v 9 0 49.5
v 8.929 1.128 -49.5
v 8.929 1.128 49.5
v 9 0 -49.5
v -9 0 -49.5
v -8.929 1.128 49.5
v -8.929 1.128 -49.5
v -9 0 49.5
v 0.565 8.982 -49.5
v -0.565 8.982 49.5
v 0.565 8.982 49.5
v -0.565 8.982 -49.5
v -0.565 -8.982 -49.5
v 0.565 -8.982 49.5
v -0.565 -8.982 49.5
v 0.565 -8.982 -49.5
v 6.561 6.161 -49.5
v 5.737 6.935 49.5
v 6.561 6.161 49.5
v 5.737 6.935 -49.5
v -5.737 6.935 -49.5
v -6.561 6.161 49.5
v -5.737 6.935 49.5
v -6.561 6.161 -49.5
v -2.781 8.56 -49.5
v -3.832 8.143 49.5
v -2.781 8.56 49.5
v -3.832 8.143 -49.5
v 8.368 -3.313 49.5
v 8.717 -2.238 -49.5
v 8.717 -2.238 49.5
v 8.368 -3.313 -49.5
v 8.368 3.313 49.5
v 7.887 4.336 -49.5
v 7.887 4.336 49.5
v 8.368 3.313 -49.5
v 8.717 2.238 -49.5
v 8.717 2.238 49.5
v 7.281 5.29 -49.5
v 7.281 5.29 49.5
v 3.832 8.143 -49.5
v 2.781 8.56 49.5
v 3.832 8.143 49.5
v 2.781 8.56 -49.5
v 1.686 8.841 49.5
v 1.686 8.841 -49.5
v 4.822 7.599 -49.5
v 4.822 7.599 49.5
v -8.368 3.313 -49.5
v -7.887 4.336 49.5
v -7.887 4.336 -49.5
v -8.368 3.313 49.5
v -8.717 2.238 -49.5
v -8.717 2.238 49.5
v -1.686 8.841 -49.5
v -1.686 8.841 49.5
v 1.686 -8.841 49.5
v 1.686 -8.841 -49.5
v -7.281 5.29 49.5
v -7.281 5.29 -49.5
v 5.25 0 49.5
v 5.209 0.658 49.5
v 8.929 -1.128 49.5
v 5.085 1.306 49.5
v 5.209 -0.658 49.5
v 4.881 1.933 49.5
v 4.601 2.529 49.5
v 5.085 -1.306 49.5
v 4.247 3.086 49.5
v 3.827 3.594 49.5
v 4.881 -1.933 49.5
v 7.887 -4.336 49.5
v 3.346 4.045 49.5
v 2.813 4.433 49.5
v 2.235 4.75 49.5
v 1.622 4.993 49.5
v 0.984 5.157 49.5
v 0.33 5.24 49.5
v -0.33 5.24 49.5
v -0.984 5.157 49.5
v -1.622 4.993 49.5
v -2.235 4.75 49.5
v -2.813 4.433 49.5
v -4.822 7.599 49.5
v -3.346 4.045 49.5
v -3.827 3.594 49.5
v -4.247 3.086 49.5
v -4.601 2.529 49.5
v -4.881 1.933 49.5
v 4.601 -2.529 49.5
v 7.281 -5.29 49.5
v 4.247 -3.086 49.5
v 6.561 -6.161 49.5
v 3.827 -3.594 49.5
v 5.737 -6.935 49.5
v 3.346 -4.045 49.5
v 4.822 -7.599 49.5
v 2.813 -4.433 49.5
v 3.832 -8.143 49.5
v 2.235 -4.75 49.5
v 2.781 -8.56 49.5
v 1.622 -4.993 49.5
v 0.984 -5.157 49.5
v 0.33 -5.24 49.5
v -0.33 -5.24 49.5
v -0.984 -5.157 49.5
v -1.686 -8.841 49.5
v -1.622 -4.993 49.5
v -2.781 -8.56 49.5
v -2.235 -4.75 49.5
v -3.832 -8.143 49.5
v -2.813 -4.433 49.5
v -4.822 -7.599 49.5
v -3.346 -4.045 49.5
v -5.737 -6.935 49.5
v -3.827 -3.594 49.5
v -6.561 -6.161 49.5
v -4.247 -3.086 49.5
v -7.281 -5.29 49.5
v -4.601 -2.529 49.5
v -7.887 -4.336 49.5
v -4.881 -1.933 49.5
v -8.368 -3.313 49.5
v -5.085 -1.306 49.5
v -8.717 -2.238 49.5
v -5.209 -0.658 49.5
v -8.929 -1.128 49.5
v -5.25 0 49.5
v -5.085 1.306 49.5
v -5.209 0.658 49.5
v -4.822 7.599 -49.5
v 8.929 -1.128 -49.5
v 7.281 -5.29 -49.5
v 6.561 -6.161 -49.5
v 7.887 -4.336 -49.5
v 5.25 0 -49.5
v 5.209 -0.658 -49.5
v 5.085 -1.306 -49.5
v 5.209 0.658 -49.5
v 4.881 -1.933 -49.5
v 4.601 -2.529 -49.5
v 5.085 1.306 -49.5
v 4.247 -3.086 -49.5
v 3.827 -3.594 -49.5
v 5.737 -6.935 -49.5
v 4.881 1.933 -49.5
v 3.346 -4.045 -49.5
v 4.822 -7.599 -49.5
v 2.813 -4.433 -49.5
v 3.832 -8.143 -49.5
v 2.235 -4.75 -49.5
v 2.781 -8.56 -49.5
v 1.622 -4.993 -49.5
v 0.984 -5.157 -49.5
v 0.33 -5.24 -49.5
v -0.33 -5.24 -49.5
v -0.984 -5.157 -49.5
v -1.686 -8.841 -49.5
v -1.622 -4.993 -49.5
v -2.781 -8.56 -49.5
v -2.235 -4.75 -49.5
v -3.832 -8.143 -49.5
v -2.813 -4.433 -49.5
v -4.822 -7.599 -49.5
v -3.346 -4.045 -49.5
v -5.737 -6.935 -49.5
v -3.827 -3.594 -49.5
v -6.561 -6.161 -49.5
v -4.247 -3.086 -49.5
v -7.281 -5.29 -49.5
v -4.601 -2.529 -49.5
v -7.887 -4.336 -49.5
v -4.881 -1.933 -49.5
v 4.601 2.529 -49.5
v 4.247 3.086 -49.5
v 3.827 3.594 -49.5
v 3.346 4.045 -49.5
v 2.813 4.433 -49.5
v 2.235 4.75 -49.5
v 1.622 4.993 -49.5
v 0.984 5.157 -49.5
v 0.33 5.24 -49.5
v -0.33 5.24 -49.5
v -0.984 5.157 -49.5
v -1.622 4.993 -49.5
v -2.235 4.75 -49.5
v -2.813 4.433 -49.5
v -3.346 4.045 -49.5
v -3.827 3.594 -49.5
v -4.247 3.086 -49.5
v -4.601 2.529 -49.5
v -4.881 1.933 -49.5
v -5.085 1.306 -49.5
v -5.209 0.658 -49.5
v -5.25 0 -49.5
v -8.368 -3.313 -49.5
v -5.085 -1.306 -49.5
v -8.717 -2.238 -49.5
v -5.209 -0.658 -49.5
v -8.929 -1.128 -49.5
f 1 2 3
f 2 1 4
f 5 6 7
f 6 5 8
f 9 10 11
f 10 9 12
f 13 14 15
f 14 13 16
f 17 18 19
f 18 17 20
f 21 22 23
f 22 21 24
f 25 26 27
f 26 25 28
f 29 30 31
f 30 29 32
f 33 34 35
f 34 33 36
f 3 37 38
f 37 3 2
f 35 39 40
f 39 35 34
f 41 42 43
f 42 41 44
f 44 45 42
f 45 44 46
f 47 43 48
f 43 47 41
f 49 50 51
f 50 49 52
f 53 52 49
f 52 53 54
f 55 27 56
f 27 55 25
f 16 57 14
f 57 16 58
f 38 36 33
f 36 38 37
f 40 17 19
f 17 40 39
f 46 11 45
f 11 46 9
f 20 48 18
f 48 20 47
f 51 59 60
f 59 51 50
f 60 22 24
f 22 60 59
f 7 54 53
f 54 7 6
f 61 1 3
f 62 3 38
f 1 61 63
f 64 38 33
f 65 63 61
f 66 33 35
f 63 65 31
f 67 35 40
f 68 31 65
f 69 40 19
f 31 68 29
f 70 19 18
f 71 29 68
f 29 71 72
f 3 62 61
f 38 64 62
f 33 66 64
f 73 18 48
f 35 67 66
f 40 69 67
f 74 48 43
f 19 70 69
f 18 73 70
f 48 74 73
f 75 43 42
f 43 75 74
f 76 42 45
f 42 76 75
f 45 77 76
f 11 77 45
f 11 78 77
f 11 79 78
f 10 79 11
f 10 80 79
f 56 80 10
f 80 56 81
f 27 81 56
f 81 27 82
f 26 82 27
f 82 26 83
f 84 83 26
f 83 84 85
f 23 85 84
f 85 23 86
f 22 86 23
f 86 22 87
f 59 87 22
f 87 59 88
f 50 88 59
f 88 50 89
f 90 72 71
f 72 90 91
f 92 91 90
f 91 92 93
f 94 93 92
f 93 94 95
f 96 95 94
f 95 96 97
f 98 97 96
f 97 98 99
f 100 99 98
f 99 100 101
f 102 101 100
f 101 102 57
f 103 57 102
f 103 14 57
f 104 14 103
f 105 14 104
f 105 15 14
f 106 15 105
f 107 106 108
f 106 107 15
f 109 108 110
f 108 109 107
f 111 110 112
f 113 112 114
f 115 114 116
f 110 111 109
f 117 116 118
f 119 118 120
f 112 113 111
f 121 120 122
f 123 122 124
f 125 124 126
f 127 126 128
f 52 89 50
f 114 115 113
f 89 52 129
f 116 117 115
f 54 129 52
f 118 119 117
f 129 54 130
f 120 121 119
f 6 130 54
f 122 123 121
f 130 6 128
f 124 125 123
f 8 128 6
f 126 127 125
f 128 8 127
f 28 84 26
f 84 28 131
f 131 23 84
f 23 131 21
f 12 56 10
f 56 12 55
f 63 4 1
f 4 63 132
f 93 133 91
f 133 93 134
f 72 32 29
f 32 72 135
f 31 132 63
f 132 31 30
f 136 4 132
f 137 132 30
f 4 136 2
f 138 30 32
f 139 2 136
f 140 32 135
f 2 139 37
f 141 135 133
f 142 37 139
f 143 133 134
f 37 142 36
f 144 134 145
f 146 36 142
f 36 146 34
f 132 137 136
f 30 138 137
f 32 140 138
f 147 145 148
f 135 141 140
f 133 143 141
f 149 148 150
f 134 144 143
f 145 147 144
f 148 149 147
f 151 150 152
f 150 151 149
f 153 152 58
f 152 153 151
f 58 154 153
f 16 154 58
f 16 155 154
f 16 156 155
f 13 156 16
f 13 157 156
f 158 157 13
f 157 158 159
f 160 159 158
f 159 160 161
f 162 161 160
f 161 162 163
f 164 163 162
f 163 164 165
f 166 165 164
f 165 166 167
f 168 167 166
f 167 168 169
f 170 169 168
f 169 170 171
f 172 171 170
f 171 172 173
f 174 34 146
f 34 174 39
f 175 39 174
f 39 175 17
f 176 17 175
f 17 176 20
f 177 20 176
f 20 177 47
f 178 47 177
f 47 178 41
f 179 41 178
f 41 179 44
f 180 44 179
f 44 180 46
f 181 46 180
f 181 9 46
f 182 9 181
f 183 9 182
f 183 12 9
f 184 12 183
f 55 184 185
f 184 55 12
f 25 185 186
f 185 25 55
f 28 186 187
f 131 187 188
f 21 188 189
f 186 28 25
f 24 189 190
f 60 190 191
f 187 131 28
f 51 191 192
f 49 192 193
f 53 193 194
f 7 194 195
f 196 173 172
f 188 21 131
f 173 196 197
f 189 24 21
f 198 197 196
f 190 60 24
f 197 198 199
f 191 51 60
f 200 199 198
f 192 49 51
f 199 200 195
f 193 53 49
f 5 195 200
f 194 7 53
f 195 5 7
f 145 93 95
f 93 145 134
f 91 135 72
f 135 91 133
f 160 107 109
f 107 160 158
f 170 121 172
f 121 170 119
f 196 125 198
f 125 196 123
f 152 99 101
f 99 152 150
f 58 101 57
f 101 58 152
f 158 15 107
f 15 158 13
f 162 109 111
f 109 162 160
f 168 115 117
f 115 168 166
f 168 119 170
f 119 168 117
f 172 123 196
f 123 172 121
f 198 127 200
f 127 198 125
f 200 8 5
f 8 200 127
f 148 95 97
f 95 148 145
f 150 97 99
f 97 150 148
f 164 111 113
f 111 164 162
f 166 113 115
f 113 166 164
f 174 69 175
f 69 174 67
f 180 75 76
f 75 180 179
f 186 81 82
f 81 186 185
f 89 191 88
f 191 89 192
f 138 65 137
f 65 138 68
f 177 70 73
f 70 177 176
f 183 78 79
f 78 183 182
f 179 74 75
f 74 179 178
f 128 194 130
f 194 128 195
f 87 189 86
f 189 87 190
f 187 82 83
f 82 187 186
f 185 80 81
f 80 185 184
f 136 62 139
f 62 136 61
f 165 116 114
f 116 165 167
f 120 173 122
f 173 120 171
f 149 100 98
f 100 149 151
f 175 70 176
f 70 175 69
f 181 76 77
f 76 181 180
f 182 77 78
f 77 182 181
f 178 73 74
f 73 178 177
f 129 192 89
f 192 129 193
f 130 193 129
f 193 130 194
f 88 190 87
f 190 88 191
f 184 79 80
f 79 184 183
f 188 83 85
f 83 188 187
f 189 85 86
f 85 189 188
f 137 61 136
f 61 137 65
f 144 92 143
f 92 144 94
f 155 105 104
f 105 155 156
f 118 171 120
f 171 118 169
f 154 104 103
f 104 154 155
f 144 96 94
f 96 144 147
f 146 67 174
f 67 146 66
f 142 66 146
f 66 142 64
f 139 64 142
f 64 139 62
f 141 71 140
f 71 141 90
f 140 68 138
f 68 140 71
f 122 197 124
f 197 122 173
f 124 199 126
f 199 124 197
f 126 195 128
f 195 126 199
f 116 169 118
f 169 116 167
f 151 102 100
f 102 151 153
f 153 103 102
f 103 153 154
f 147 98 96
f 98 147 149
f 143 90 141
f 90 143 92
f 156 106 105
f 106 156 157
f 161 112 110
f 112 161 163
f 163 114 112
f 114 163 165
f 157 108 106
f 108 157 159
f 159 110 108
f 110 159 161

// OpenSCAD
$fn = 50;


difference() {
	union() {
		translate(v = [0, 0, -49.5000000000]) {
			cylinder(h = 99, r = 9.0000000000);
		}
	}
	union() {
		translate(v = [0, 0, -100.0000000000]) {
			cylinder(h = 200, r = 5.2500000000);
		}
	}
}
